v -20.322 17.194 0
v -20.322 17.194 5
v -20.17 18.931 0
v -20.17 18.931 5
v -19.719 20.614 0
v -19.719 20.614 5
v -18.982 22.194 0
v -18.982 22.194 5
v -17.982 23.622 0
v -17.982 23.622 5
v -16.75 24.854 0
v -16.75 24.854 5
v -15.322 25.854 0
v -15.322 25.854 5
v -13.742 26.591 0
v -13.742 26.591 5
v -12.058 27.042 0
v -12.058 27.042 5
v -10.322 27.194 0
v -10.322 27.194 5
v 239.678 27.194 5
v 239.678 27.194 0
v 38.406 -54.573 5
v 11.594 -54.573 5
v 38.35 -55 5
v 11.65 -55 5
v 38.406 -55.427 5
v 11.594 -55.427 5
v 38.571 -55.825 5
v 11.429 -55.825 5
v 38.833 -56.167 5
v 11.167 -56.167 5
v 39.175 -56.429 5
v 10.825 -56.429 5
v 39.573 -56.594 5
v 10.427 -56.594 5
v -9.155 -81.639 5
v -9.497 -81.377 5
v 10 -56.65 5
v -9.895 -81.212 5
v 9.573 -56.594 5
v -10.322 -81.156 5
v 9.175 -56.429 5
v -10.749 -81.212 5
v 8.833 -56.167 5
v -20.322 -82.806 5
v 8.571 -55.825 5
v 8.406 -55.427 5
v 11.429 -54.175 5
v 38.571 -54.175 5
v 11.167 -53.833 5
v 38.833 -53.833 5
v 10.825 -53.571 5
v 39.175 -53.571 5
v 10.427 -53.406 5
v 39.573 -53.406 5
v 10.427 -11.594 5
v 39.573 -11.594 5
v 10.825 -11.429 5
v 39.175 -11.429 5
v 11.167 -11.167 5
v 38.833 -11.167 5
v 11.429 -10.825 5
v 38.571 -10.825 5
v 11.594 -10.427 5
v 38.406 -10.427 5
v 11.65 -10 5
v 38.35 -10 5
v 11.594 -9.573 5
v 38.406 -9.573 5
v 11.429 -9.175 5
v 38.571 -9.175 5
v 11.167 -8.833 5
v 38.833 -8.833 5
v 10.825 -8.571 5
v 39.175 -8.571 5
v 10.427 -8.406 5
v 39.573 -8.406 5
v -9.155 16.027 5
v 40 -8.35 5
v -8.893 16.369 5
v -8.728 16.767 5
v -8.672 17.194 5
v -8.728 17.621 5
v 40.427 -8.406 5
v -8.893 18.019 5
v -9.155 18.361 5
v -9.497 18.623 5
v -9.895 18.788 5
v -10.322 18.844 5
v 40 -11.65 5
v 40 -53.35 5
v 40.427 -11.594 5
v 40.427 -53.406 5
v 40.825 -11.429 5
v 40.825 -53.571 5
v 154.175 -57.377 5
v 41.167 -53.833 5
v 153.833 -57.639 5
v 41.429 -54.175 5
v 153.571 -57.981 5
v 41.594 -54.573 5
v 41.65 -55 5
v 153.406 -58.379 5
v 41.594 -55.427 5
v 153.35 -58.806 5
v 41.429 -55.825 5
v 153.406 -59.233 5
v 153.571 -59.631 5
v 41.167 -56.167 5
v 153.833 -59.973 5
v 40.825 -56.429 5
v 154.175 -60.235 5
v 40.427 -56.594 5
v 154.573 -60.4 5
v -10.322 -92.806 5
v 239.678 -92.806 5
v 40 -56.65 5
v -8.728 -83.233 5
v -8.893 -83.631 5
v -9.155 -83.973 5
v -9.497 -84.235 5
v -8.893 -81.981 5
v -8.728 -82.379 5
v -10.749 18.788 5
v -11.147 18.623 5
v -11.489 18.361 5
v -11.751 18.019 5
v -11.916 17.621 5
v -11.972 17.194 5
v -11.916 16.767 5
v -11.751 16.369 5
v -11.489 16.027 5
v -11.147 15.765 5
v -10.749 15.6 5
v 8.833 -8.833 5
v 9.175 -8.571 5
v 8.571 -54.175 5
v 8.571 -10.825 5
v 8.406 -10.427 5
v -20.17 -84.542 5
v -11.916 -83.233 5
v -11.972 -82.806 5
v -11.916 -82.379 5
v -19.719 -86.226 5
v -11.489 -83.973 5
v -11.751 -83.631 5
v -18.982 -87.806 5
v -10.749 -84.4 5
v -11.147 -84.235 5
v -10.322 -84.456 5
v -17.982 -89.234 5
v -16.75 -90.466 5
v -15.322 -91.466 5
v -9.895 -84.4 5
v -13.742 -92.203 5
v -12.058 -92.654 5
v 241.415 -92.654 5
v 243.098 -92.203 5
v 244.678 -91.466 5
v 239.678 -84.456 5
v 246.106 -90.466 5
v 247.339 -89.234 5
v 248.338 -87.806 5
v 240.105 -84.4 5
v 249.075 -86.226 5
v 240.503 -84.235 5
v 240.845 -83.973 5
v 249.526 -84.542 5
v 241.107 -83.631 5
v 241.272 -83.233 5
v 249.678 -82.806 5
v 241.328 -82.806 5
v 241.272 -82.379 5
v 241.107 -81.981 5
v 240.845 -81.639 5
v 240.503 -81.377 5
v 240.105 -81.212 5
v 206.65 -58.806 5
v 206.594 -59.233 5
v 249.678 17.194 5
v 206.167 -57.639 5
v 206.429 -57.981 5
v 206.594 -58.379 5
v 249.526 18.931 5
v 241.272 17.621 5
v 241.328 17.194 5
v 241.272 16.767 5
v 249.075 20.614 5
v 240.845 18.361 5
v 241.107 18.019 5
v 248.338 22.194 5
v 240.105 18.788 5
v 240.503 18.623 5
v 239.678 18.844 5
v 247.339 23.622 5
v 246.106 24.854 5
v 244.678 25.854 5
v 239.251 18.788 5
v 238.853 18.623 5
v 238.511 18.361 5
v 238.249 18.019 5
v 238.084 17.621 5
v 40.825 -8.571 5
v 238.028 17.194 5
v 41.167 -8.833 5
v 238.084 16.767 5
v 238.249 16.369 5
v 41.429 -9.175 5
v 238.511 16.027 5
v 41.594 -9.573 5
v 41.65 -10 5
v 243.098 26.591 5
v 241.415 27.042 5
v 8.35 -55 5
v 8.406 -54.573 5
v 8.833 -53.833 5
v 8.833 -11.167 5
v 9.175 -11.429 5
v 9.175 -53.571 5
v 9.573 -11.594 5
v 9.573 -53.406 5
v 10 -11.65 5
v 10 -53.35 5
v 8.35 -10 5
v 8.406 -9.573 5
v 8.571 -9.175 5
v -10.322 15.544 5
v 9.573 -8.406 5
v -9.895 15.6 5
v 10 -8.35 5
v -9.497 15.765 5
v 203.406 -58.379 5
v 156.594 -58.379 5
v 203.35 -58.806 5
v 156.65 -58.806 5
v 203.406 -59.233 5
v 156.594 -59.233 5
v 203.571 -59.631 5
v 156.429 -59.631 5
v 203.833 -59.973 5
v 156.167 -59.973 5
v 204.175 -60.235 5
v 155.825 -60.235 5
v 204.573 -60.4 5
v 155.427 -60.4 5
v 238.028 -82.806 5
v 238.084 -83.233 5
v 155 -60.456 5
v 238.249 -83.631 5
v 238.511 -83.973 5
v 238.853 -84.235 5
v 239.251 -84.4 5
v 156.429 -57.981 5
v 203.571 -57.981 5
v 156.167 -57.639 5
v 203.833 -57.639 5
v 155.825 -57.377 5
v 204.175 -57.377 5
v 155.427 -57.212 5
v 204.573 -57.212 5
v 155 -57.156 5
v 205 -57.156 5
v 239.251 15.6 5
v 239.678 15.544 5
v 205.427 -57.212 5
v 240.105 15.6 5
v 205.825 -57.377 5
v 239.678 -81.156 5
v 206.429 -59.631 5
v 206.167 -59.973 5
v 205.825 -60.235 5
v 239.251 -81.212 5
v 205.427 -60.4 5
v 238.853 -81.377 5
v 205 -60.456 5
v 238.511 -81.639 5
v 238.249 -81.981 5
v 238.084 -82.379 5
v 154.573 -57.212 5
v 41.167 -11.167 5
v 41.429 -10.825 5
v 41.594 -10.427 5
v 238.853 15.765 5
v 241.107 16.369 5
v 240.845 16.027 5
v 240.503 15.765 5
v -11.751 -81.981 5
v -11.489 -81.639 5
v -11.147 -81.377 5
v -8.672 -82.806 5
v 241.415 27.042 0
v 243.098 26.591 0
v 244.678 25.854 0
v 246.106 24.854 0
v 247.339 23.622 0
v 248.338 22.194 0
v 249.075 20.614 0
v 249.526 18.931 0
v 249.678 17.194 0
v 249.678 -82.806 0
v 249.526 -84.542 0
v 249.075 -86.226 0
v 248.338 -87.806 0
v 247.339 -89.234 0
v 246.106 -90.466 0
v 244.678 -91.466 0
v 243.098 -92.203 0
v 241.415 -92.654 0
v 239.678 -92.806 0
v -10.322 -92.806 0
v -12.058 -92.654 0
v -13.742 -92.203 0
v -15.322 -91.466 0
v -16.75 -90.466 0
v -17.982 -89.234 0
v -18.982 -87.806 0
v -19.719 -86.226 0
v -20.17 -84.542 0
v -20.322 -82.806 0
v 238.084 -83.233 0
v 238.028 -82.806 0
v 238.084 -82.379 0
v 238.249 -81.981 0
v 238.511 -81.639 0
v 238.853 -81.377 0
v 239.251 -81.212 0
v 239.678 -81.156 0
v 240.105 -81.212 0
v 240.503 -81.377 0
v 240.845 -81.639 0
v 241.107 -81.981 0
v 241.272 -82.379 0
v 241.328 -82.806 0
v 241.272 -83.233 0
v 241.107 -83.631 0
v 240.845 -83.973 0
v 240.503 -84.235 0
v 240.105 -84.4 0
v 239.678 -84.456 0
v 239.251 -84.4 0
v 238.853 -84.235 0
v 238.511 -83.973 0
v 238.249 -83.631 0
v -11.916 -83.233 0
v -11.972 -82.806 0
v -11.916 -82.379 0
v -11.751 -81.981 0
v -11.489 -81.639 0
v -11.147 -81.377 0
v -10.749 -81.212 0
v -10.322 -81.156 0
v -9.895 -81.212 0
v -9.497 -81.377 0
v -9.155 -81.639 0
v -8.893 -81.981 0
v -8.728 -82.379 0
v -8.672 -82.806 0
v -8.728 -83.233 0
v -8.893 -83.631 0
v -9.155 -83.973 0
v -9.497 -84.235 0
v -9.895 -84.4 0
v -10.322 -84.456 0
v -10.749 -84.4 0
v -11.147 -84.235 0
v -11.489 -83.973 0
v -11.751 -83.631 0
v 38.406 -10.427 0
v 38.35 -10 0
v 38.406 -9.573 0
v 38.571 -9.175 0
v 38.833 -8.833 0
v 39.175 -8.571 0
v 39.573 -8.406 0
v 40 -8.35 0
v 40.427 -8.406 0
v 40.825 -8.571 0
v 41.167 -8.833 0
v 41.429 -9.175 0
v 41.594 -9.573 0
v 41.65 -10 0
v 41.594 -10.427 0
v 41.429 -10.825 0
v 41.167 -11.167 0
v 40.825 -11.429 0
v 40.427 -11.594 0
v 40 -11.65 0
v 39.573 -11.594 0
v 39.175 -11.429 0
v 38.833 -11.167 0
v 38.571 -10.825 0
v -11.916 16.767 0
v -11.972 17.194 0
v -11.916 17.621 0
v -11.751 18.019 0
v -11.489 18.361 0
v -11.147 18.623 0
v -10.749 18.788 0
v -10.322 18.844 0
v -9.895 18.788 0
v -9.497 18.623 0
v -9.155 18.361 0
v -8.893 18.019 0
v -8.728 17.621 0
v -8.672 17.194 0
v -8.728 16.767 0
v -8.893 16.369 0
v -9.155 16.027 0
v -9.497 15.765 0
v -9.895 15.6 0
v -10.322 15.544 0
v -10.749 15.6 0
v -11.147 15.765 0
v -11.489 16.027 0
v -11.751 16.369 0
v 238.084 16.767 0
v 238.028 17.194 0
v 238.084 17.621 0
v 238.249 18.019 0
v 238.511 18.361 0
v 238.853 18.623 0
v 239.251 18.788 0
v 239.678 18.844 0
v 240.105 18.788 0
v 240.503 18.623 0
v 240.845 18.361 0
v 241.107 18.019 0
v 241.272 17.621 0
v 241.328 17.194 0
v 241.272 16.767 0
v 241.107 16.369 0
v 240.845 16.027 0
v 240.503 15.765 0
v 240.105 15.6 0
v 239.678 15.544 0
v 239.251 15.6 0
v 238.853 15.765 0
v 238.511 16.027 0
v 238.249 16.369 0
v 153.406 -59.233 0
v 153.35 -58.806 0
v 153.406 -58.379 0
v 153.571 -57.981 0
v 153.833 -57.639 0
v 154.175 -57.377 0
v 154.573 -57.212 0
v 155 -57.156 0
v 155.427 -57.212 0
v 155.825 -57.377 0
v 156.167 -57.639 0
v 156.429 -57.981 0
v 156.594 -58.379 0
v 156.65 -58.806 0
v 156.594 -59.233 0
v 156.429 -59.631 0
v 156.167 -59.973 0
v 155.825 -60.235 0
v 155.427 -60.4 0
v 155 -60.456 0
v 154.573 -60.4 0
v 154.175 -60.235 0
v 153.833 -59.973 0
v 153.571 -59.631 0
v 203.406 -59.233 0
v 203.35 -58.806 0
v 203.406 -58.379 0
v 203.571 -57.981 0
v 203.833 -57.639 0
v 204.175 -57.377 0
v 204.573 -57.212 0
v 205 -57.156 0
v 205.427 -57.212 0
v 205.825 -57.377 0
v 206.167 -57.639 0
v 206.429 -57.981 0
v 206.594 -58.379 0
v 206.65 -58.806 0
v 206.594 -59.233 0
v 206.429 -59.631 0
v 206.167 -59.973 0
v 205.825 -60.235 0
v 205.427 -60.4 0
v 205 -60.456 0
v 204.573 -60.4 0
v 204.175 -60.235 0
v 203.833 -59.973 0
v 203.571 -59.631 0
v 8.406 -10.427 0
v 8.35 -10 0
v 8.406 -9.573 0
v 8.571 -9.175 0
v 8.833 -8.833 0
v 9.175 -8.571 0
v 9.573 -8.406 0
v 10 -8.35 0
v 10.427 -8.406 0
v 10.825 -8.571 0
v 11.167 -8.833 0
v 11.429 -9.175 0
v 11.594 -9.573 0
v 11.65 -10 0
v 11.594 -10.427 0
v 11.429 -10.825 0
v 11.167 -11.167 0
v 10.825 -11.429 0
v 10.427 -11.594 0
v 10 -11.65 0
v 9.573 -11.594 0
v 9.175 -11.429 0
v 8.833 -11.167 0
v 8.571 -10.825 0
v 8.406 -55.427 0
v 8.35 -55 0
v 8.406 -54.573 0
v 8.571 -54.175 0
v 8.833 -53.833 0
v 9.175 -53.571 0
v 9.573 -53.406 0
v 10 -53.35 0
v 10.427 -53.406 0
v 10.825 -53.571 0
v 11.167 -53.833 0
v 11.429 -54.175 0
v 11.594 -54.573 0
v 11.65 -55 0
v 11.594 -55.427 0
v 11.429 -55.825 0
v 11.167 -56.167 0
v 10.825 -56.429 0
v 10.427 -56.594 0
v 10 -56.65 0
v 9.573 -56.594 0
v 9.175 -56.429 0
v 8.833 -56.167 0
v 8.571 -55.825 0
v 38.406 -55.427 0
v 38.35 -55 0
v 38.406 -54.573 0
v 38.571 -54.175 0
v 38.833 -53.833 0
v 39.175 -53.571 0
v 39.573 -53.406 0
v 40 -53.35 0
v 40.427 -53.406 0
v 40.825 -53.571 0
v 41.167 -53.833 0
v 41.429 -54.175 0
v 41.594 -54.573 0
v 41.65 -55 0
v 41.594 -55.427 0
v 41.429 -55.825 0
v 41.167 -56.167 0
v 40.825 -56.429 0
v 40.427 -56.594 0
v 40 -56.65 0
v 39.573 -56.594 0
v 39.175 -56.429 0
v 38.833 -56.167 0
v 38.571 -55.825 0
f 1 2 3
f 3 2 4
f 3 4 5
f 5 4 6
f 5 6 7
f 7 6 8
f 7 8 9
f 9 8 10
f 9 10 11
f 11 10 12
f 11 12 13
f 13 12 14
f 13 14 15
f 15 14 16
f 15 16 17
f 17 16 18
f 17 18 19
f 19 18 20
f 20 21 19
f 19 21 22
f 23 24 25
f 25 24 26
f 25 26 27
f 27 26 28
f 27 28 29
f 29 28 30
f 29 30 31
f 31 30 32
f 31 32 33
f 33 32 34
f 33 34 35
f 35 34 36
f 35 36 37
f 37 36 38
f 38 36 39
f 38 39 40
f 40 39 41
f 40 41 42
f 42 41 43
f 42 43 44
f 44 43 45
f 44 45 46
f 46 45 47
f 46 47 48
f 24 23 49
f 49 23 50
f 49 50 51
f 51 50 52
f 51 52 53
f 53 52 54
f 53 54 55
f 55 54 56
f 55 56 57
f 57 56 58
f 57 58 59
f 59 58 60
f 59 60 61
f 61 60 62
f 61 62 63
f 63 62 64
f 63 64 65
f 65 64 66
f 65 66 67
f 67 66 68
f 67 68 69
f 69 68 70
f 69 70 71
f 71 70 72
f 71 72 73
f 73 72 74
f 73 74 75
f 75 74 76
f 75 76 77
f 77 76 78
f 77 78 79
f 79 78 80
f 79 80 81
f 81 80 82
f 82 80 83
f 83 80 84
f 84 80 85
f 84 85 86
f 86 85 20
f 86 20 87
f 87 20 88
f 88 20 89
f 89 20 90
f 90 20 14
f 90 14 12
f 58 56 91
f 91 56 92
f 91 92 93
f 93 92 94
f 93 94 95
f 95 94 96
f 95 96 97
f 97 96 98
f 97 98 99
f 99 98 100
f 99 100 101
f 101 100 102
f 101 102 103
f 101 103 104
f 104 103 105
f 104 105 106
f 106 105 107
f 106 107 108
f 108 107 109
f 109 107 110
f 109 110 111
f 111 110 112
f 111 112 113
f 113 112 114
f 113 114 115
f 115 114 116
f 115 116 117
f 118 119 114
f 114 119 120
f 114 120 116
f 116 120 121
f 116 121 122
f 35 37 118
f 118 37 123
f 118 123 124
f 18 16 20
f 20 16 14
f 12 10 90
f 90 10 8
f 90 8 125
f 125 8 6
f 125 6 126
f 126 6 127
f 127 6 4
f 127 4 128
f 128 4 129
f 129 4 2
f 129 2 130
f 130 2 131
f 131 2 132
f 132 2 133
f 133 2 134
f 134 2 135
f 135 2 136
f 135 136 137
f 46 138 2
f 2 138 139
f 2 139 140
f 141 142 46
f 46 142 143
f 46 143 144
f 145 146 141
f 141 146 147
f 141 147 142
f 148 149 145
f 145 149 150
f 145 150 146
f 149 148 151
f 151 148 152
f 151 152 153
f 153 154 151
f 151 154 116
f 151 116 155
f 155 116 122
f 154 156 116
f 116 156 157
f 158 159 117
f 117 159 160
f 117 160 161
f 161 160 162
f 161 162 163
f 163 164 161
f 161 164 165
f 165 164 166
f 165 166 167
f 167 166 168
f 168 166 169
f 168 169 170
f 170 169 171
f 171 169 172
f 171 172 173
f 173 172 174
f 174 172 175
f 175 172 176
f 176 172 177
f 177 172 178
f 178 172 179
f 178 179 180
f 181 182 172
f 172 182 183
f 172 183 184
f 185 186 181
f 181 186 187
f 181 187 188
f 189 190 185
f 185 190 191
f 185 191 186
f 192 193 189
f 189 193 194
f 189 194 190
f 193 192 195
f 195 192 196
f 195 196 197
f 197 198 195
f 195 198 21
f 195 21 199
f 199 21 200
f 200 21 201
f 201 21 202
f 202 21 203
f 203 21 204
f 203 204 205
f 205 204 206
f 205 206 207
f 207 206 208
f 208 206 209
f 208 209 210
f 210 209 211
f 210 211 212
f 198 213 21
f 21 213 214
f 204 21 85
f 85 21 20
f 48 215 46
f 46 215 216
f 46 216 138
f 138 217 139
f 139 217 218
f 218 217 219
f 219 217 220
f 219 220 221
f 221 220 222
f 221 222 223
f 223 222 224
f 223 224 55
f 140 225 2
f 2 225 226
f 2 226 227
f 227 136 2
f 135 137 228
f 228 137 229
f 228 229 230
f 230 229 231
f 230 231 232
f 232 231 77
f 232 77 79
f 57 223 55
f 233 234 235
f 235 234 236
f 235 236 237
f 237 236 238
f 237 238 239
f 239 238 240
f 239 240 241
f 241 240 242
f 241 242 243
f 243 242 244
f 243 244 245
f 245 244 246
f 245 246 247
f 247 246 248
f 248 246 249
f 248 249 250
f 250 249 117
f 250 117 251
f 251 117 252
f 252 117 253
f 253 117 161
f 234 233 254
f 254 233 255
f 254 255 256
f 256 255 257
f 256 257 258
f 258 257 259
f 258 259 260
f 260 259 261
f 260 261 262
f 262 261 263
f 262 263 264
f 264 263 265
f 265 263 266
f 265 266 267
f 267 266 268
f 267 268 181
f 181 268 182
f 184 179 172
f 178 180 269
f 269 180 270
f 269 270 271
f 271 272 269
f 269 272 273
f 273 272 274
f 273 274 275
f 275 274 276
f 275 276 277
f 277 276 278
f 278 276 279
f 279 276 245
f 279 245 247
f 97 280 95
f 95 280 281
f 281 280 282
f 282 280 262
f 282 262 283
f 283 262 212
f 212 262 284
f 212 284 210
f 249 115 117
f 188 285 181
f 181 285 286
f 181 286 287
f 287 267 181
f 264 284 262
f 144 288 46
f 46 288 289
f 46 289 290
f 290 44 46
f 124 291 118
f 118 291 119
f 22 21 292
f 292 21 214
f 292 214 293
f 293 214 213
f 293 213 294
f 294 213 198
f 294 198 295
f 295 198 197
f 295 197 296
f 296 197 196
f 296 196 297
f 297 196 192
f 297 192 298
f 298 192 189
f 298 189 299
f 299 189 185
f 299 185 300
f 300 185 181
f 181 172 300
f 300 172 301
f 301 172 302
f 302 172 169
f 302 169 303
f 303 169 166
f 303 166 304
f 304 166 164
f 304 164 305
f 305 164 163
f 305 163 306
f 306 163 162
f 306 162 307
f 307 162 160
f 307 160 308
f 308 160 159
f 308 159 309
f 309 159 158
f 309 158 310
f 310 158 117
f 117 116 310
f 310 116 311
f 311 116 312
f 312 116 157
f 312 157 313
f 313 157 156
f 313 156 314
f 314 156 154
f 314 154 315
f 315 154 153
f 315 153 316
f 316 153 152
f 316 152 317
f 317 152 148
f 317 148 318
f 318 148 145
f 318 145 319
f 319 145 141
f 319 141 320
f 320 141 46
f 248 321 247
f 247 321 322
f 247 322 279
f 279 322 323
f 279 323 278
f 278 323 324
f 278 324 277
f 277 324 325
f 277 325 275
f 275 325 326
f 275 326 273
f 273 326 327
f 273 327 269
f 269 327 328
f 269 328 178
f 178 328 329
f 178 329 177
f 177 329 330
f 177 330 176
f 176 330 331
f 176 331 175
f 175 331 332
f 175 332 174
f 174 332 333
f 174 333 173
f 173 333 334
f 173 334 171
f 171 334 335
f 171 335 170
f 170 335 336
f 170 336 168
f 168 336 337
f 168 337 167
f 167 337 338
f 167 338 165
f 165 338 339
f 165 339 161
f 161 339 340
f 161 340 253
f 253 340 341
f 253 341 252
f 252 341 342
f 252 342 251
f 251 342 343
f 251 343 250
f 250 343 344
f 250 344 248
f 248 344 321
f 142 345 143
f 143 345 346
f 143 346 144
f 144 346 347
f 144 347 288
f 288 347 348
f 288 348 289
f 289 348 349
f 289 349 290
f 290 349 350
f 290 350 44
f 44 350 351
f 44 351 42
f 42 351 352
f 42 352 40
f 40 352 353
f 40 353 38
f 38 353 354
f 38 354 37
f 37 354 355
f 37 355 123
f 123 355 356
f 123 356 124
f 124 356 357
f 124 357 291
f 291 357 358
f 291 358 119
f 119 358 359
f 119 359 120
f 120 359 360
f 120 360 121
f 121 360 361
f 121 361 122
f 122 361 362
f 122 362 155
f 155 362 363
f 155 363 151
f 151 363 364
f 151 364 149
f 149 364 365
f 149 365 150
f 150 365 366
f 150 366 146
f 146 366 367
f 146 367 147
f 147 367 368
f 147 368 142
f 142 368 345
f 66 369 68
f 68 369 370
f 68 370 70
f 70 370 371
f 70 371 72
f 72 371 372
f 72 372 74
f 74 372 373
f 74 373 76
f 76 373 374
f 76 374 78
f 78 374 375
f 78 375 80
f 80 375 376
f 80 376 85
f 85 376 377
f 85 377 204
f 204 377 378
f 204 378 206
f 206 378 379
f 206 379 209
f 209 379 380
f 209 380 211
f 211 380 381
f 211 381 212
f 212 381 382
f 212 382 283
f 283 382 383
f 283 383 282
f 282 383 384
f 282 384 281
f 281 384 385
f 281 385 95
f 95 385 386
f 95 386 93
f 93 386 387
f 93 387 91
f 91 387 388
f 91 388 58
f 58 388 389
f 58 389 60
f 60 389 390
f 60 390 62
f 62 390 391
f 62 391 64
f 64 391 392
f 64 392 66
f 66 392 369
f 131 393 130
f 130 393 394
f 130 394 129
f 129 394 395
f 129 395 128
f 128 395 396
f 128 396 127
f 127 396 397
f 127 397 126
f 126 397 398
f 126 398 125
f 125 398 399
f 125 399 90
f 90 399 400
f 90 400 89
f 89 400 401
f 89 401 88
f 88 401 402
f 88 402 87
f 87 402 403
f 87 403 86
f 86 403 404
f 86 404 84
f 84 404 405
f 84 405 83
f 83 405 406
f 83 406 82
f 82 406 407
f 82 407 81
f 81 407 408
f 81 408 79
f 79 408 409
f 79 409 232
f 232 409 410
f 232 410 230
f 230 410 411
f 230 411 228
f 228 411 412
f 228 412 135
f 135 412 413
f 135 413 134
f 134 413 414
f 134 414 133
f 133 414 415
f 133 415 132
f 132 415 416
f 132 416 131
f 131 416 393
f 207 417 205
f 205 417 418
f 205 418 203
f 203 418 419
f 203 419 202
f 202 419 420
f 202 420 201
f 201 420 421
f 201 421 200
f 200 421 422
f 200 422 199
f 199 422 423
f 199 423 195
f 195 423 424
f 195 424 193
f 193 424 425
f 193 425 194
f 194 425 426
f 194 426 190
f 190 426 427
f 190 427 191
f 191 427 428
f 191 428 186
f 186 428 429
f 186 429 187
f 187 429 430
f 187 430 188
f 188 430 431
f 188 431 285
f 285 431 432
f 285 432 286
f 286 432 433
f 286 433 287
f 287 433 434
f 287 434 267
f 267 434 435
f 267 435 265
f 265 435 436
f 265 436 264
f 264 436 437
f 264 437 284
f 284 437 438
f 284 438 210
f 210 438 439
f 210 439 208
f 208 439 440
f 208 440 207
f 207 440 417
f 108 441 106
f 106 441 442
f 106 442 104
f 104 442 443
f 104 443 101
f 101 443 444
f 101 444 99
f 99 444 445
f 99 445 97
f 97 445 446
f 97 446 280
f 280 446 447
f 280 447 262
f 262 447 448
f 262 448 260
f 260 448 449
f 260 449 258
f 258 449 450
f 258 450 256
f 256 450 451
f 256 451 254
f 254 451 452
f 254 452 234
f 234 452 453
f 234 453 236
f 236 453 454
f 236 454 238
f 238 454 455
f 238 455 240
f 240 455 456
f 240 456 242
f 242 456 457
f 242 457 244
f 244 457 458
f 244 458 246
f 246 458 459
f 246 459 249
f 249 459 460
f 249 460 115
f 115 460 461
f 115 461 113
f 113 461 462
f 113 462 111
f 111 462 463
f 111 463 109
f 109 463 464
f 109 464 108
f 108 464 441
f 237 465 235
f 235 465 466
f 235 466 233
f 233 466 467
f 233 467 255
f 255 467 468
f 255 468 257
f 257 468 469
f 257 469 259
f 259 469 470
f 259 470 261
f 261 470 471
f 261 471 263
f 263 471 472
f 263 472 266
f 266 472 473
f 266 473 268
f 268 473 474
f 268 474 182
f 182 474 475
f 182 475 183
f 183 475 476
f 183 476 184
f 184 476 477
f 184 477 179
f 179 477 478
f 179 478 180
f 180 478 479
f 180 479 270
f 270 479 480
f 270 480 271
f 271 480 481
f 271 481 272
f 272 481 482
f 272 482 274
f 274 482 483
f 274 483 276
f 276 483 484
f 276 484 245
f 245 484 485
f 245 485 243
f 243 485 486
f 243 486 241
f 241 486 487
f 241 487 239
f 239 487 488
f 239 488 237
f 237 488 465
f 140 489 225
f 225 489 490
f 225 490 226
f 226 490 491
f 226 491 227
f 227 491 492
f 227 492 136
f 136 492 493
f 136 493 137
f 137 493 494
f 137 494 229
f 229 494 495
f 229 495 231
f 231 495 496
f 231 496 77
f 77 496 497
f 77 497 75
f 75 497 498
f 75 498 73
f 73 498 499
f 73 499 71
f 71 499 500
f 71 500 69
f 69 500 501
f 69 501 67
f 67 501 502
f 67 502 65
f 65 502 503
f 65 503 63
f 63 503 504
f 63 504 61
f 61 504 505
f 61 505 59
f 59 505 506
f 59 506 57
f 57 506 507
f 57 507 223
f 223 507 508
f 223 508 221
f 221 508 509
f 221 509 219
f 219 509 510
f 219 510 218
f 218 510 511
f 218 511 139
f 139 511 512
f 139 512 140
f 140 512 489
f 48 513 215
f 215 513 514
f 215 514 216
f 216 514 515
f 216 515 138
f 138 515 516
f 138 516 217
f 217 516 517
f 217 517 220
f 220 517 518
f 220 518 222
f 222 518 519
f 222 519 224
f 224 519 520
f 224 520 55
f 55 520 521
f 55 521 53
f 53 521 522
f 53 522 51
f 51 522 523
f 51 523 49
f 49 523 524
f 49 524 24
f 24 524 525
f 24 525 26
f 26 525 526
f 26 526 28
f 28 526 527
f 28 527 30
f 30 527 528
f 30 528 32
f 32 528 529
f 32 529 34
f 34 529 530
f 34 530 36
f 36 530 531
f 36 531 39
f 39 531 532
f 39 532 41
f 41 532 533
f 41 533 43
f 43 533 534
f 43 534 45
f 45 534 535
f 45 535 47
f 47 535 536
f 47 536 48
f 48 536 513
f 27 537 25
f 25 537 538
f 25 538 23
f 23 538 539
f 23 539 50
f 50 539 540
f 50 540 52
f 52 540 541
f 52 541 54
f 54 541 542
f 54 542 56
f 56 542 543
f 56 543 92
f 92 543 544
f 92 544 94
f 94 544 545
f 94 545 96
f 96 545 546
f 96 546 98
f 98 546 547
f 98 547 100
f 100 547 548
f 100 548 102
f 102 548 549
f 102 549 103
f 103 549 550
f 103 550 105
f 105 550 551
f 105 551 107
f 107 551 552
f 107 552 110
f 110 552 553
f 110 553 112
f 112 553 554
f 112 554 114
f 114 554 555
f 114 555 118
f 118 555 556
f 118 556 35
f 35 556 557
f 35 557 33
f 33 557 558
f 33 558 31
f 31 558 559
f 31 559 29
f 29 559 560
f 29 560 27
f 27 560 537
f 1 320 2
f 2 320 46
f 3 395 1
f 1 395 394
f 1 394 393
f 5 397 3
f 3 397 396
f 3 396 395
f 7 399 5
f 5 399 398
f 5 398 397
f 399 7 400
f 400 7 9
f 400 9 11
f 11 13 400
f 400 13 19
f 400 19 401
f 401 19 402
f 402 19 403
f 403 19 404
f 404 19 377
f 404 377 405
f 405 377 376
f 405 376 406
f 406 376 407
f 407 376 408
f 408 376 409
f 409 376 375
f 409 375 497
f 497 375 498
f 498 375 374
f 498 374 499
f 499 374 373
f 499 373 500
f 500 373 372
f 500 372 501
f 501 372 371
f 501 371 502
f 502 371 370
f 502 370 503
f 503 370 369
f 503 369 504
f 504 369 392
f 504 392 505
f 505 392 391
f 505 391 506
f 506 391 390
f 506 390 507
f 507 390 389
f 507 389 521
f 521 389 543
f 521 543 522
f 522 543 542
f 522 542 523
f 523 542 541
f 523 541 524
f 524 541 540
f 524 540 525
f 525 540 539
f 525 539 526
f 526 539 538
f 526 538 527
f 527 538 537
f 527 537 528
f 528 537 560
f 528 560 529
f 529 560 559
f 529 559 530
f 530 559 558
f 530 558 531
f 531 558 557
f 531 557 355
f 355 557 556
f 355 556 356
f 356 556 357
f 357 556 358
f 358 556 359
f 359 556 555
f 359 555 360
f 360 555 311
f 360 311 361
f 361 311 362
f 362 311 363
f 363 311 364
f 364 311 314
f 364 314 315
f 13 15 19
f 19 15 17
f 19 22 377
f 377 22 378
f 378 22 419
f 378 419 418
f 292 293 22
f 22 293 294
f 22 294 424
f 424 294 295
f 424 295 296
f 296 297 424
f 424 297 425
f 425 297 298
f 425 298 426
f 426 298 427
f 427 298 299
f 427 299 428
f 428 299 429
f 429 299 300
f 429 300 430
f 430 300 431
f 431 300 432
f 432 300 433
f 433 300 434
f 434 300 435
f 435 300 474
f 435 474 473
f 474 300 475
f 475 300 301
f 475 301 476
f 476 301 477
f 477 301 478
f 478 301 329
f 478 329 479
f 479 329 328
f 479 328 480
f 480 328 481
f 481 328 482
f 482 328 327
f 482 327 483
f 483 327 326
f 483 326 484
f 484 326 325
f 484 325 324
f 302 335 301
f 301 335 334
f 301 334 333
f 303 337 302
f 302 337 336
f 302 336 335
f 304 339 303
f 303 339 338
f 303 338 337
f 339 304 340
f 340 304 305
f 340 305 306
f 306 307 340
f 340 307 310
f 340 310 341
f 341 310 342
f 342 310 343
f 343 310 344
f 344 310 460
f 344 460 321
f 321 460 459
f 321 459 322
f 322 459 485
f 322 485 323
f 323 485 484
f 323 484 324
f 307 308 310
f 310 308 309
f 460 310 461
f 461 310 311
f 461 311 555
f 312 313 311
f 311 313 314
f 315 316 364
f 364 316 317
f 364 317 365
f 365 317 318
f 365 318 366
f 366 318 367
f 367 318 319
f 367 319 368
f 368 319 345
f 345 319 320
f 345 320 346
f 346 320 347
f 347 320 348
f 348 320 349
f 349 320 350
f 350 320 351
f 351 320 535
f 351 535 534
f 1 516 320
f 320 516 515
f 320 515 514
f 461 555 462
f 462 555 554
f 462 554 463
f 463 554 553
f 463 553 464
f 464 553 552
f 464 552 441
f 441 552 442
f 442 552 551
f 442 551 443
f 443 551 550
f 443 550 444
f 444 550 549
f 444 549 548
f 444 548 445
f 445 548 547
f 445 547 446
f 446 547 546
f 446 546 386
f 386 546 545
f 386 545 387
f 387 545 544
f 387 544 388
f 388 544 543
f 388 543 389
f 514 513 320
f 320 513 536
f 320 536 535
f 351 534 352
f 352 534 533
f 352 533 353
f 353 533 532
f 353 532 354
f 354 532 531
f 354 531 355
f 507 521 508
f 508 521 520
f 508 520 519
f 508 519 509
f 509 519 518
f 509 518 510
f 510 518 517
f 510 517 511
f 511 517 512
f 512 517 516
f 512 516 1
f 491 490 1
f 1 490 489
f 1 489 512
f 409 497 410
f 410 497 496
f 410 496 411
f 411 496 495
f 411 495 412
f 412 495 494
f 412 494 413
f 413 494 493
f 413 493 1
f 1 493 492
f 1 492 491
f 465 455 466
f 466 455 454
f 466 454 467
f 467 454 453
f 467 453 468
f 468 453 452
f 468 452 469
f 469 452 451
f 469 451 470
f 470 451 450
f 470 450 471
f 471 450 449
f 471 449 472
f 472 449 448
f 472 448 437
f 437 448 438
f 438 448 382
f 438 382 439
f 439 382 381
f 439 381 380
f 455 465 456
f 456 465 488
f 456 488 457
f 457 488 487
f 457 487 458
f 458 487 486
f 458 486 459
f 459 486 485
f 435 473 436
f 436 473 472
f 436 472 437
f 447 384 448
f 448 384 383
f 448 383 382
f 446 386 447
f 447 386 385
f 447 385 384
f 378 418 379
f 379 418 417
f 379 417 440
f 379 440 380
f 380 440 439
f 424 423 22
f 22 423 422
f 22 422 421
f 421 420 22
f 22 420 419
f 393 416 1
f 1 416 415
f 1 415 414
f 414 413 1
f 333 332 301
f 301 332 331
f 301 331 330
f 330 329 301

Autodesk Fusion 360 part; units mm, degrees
sketch "Esquisse2" plane through (0, 0, 0) normal (0, 0, 1) x (1, 0, 0)
  line L0 (-20.3219, 27.194) -> (249.6781, 27.194)
  line L1 (249.6781, 27.194) -> (249.6781, -92.806)
  line L2 (249.6781, -92.806) -> (-20.3219, -92.806)
  line L3 (-20.3219, -92.806) -> (-20.3219, 27.194)
  circle A0 centre (-10.3219, 17.194) radius 1.65
  circle A1 centre (-10.3219, -82.806) radius 1.65
  circle A2 centre (239.6781, 17.194) radius 1.65
  circle A3 centre (239.6781, -82.806) radius 1.65
  circle A4 centre (10, -10) radius 1.65
  circle A5 centre (40, -10) radius 1.65
  circle A6 centre (10, -55) radius 1.65
  circle A7 centre (40, -55) radius 1.65
  circle A8 centre (155, -58.806) radius 1.65
  circle A9 centre (205, -58.806) radius 1.65
  dimension "d1" = 120
  dimension "d2" = 270
  dimension "d20" = 3.3
  dimension "d21" = 10
  dimension "d22" = 10
  dimension "d23" = 3.3
  dimension "d24" = 10
  dimension "d25" = 10
  dimension "d26" = 3.3
  dimension "d27" = 10
  dimension "d28" = 10
  dimension "d29" = 3.3
  dimension "d30" = 10
  dimension "d31" = 10
  dimension "d32" = 3.3
  dimension "d33" = 3.3
  dimension "d34" = 45
  dimension "d35" = 3.3
  dimension "d36" = 30
  dimension "d37" = 3.3
  dimension "d38" = 30
  dimension "d39" = 3.3
  dimension "d40" = 3.3
  dimension "d49" = 34
  dimension "d50" = 115
  dimension "d53" = 34
  dimension "d54" = 50
extrude "Extrusion5" add sketch "Esquisse2" along normal blind 5
fillet "Congé1" radius 10 4 edges at (-20.3219, -92.806, 2.5) (249.6781, -92.806, 2.5) (249.6781, 27.194, 2.5) (-20.3219, 27.194, 2.5)
equation "d3 = 3.30 mm"
equation "d10 = 3.3 mm"
equation "d33 = d3"
equation "d35 = d3"
equation "d37 = d3"
equation "d40 = d10"
